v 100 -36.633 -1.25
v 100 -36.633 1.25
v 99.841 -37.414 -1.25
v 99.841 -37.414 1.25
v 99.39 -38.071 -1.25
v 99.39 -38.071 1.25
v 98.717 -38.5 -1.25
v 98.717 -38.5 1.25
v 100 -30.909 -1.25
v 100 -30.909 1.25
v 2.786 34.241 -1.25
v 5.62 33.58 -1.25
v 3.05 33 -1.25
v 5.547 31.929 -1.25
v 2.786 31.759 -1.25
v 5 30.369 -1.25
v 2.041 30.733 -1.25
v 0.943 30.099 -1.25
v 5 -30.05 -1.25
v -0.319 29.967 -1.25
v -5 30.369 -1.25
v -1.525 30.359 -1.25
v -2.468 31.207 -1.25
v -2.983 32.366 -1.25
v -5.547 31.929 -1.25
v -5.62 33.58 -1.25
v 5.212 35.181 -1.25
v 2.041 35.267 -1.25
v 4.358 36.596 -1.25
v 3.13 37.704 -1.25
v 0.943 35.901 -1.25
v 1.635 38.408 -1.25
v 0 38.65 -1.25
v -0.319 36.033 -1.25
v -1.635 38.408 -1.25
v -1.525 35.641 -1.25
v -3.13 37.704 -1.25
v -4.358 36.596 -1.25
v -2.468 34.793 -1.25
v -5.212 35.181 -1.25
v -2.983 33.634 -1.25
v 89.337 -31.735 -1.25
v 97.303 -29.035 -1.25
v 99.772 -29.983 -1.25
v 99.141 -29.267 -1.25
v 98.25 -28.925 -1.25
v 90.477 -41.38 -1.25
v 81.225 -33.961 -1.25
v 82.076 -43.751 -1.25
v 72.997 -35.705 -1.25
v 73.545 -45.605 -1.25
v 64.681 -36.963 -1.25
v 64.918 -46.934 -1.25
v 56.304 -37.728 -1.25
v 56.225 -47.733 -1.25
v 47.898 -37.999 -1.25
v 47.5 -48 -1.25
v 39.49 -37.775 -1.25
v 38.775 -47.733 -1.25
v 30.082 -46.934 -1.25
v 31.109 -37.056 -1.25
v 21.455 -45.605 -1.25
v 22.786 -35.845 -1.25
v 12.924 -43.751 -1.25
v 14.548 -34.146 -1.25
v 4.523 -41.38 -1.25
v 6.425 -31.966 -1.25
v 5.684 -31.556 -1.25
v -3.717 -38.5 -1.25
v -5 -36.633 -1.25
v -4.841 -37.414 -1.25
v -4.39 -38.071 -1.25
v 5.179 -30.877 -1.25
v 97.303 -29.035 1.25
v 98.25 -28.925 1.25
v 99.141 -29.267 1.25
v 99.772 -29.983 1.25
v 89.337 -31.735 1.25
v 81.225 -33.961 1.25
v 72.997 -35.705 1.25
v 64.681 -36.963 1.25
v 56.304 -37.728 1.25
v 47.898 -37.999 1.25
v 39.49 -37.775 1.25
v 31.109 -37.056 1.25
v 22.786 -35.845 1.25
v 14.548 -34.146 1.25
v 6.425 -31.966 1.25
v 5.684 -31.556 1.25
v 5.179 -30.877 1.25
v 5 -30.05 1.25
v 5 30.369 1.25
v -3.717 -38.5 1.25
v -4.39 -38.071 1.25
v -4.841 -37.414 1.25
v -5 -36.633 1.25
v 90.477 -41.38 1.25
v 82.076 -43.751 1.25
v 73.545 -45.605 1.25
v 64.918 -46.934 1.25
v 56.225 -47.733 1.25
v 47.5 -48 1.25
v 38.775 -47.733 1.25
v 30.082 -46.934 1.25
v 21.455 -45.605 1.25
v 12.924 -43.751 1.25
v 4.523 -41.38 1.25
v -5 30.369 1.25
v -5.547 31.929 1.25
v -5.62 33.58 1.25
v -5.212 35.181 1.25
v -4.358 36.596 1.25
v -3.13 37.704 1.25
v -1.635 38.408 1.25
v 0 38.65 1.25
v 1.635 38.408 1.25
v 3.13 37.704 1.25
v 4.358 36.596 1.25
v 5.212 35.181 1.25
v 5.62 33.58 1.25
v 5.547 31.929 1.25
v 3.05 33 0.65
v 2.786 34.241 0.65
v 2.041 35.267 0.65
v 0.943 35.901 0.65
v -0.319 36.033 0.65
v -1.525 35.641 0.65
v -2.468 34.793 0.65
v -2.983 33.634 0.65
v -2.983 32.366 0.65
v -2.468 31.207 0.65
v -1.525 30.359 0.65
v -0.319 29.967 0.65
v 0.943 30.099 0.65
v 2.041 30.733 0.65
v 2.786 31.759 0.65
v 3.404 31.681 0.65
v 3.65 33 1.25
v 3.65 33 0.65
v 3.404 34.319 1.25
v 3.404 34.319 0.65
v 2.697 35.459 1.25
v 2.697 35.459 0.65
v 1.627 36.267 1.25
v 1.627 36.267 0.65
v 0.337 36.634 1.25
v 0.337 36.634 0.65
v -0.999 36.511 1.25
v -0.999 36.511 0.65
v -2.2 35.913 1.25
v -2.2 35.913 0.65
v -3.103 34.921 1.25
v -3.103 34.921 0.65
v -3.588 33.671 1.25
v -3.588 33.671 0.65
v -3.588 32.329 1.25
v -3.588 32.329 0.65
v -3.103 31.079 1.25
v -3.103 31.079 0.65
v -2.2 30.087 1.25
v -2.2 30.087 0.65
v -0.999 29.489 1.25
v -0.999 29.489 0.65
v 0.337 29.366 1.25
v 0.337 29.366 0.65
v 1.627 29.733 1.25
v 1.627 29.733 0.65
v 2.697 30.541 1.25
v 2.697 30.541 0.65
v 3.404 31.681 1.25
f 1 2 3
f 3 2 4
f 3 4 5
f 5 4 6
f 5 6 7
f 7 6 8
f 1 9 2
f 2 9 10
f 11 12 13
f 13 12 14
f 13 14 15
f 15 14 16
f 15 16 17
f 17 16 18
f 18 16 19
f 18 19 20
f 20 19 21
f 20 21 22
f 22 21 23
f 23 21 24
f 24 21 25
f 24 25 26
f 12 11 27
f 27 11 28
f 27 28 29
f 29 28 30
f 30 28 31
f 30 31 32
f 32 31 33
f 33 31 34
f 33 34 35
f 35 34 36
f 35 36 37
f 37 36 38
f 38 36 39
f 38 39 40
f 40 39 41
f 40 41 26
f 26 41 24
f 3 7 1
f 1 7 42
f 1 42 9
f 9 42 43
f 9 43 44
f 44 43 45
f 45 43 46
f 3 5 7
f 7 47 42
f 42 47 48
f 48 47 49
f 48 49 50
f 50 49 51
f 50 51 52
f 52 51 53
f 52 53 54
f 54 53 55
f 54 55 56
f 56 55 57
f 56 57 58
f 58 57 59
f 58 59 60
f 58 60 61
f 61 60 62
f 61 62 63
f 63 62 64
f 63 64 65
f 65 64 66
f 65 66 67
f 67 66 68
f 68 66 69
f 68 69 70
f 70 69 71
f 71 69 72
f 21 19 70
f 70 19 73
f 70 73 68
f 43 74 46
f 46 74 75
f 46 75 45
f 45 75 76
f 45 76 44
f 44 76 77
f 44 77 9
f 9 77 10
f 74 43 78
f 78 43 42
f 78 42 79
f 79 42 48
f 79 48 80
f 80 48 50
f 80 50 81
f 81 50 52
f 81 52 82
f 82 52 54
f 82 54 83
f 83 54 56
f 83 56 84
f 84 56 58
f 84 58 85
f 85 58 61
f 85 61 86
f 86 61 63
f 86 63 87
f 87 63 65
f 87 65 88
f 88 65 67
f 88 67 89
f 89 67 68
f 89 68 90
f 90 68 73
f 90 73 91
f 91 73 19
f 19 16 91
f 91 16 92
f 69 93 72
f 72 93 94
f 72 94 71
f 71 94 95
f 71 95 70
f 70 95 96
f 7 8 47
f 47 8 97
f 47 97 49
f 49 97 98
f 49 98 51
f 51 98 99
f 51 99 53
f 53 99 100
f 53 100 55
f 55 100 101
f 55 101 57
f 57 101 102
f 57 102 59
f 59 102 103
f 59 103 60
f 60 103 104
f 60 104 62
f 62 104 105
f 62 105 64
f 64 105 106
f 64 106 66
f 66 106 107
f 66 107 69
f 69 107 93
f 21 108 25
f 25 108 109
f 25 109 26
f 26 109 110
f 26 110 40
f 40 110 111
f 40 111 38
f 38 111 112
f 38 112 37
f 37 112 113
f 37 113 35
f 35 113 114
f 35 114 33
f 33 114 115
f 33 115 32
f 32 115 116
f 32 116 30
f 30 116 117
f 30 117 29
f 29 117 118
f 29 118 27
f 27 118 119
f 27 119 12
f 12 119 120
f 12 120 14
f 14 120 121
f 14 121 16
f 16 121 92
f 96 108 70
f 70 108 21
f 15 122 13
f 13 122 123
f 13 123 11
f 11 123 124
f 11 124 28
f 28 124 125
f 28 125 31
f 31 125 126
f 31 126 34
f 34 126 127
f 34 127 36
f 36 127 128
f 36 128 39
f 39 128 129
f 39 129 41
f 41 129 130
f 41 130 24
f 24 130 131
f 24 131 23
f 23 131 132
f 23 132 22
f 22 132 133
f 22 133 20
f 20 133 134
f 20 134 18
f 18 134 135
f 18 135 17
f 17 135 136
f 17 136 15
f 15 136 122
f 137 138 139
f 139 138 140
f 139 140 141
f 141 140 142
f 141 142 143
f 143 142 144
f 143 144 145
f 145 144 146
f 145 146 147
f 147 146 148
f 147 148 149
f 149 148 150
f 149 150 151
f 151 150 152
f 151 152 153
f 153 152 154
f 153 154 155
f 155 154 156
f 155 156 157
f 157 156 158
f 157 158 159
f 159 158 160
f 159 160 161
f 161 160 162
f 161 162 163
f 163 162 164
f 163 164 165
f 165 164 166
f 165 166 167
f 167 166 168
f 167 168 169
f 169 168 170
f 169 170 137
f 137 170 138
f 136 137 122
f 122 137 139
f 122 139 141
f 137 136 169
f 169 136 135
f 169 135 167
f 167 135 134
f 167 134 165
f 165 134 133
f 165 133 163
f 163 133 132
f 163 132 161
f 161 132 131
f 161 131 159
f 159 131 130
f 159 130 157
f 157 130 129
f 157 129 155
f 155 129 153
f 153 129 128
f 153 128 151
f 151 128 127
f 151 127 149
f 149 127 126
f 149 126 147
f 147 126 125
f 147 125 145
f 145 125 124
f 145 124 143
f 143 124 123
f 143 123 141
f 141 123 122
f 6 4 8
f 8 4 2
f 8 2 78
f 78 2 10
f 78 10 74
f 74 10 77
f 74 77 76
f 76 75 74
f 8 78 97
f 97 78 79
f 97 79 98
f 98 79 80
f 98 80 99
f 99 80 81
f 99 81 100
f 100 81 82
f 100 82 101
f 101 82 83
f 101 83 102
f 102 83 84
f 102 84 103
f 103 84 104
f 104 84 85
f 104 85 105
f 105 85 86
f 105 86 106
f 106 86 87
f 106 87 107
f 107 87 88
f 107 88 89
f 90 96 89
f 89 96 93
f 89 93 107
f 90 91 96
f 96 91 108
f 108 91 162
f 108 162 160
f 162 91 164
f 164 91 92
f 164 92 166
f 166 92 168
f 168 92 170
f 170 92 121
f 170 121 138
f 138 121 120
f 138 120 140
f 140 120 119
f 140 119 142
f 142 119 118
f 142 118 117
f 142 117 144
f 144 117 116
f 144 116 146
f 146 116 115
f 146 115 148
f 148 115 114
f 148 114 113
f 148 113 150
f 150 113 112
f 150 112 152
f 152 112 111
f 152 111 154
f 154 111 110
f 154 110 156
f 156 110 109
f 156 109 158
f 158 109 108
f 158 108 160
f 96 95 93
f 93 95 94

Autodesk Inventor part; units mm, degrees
ref_plane "YZ Plane" through (0, 0, 0) normal (1, 0, 0) x (0, 1, 0)
ref_plane "XZ Plane" through (0, 0, 0) normal (0, 1, 0) x (-1, 0, 0)
ref_plane "XY Plane" through (0, 0, 0) normal (0, 0, 1) x (1, 0, 0)
sketch "スケッチ1" plane through (0, 0, 0) normal (0, 0, 1) x (1, 0, 0)
  line L0 (-5, -38) -> (5, -38)
  line L1 (5, -38) -> (5, 38)
  line L2 (5, 38) -> (-5, 38)
  line L3 (-5, 38) -> (-5, -38)
  line L4 (-5, -38) -> (5, 38) construction
  line L5 (5, -38) -> (-5, 38) construction
  line L6 (-5, -38) -> (100, -38)
  line L7 (100, -38) -> (100, -28)
  line L8 (100, -28) -> (-5, -28)
  line L9 (-5, -28) -> (-5, -38)
  line L10 (47.5, -38) -> (47.5, -48)
  arc A0 (-5, -28) -> (100, -28) centre (47.5, 104.8125) ccw
  arc A1 (-5, -38) -> (100, -38) centre (47.5, 94.8125) ccw
  point P0 (0, 0)
  point P1 (5, -31.5296)
  dimension "d0" = 10
  dimension "d1" = 76
  dimension "d2" = 105
  dimension "d3" = 10
  dimension "d4" = 10
extrude "押し出し1" add sketch "スケッチ1" along normal mid plane 2.5 contours L3 A0 L1 L0 | L0 L6 L10 A1 | L1 A0 L6 | L3 L2 L1 L8 | L8 L1 A0 | L10 L6 A1 | A0 L7 L6 picked at (-0.5654, -28.4196)
sketch "スケッチ2" plane through (0, 0, 1.25) normal (0, 0, 1) x (1, 0, 0)
  line L0 (5, 38) -> (-5, 38) projected
  line L1 (5, -31.5296) -> (5, 38) projected
  circle A0 centre (0, 33) radius 3.05
  circle A1 centre (0, 33) radius 3.65
  point P0 (0, 0)
  dimension "d7" = 5
  dimension "d8" = 5
  dimension "d9" = 6.1
  dimension "d10" = 7.3
extrude "押し出し2" cut sketch "スケッチ2" against normal blind 0.6 contours A0 | A1
sketch "スケッチ3" plane through (0, 33, 0.65) normal (0, 0, 1) x (1, 0, 0)
  circle A0 centre (0, 0) radius 3.05
  point P0 (0, -33)
  dimension "d13" = 6.1
extrude "押し出し3" cut sketch "スケッチ3" against normal blind 1.9
sketch "スケッチ6" plane through (0, 0, 1.25) normal (0, 0, 1) x (1, 0, 0)
  circle A0 centre (0, 33) radius 3.65 projected
  line L0 (-5, 38) -> (-5, -38) projected
  arc A1 (-5, -38) -> (100, -38) centre (47.5, 94.8125) ccw projected
  line L1 (100, -38) -> (100, -28) projected
  arc A2 (5, -31.5296) -> (100, -28) centre (47.5, 104.8125) ccw projected
  line L2 (5, -31.5296) -> (5, 38) projected
  line L3 (5, 38) -> (-5, 38) projected
  circle A3 centre (0, 33) radius 5.65
  point P0 (0, 0)
  point P1 (-5, 30.3689)
  point P2 (-5, 35.6311)
  point P3 (-2.6311, 38)
  point P4 (2.6311, 38)
  point P5 (5, 35.6311)
  point P6 (5, 30.3689)
  dimension "d18" = 11.3
extrude "押し出し5" add sketch "スケッチ6" against normal blind 2.5 contours L0 A3 | A3 L3 | L2 A3
sketch "スケッチ7" plane through (0, 0, 1.25) normal (0, 0, 1) x (1, 0, 0)
  circle A0 centre (0, 33) radius 3.65 projected
  line L0 (-5, 38) -> (-5, 35.6311) projected
  arc A1 (-5, 35.6311) -> (-5, 30.3689) centre (0, 33) ccw projected
  line L1 (-5, 30.3689) -> (-5, -38) projected
  arc A2 (-5, -38) -> (100, -38) centre (47.5, 94.8125) ccw projected
  line L2 (100, -38) -> (100, -28) projected
  arc A3 (5, -31.5296) -> (100, -28) centre (47.5, 104.8125) ccw projected
  line L3 (5, -31.5296) -> (5, 30.3689) projected
  arc A4 (5, 30.3689) -> (5, 35.6311) centre (0, 33) ccw projected
  line L4 (5, 35.6311) -> (5, 38) projected
  line L5 (5, 38) -> (2.6311, 38) projected
  arc A5 (2.6311, 38) -> (-2.6311, 38) centre (0, 33) ccw projected
  line L6 (-2.6311, 38) -> (-5, 38) projected
  circle A6 centre (0, 33) radius 5.65
  point P0 (0, 0)
  point P1 (-5, 35.6311)
  point P2 (-2.6311, 38)
  point P3 (2.6311, 38)
  point P4 (5, 35.6311)
extrude "押し出し6" cut sketch "スケッチ7" against normal blind 2.5 contours L6 A6 L0 | L5 L4 A6
fillet "フィレット1" radius 2 4 edges at (-5, -38, 0) (5, -31.5296, 0) (100, -28, 0) (100, -38, 0)
properties part number "指_大"
